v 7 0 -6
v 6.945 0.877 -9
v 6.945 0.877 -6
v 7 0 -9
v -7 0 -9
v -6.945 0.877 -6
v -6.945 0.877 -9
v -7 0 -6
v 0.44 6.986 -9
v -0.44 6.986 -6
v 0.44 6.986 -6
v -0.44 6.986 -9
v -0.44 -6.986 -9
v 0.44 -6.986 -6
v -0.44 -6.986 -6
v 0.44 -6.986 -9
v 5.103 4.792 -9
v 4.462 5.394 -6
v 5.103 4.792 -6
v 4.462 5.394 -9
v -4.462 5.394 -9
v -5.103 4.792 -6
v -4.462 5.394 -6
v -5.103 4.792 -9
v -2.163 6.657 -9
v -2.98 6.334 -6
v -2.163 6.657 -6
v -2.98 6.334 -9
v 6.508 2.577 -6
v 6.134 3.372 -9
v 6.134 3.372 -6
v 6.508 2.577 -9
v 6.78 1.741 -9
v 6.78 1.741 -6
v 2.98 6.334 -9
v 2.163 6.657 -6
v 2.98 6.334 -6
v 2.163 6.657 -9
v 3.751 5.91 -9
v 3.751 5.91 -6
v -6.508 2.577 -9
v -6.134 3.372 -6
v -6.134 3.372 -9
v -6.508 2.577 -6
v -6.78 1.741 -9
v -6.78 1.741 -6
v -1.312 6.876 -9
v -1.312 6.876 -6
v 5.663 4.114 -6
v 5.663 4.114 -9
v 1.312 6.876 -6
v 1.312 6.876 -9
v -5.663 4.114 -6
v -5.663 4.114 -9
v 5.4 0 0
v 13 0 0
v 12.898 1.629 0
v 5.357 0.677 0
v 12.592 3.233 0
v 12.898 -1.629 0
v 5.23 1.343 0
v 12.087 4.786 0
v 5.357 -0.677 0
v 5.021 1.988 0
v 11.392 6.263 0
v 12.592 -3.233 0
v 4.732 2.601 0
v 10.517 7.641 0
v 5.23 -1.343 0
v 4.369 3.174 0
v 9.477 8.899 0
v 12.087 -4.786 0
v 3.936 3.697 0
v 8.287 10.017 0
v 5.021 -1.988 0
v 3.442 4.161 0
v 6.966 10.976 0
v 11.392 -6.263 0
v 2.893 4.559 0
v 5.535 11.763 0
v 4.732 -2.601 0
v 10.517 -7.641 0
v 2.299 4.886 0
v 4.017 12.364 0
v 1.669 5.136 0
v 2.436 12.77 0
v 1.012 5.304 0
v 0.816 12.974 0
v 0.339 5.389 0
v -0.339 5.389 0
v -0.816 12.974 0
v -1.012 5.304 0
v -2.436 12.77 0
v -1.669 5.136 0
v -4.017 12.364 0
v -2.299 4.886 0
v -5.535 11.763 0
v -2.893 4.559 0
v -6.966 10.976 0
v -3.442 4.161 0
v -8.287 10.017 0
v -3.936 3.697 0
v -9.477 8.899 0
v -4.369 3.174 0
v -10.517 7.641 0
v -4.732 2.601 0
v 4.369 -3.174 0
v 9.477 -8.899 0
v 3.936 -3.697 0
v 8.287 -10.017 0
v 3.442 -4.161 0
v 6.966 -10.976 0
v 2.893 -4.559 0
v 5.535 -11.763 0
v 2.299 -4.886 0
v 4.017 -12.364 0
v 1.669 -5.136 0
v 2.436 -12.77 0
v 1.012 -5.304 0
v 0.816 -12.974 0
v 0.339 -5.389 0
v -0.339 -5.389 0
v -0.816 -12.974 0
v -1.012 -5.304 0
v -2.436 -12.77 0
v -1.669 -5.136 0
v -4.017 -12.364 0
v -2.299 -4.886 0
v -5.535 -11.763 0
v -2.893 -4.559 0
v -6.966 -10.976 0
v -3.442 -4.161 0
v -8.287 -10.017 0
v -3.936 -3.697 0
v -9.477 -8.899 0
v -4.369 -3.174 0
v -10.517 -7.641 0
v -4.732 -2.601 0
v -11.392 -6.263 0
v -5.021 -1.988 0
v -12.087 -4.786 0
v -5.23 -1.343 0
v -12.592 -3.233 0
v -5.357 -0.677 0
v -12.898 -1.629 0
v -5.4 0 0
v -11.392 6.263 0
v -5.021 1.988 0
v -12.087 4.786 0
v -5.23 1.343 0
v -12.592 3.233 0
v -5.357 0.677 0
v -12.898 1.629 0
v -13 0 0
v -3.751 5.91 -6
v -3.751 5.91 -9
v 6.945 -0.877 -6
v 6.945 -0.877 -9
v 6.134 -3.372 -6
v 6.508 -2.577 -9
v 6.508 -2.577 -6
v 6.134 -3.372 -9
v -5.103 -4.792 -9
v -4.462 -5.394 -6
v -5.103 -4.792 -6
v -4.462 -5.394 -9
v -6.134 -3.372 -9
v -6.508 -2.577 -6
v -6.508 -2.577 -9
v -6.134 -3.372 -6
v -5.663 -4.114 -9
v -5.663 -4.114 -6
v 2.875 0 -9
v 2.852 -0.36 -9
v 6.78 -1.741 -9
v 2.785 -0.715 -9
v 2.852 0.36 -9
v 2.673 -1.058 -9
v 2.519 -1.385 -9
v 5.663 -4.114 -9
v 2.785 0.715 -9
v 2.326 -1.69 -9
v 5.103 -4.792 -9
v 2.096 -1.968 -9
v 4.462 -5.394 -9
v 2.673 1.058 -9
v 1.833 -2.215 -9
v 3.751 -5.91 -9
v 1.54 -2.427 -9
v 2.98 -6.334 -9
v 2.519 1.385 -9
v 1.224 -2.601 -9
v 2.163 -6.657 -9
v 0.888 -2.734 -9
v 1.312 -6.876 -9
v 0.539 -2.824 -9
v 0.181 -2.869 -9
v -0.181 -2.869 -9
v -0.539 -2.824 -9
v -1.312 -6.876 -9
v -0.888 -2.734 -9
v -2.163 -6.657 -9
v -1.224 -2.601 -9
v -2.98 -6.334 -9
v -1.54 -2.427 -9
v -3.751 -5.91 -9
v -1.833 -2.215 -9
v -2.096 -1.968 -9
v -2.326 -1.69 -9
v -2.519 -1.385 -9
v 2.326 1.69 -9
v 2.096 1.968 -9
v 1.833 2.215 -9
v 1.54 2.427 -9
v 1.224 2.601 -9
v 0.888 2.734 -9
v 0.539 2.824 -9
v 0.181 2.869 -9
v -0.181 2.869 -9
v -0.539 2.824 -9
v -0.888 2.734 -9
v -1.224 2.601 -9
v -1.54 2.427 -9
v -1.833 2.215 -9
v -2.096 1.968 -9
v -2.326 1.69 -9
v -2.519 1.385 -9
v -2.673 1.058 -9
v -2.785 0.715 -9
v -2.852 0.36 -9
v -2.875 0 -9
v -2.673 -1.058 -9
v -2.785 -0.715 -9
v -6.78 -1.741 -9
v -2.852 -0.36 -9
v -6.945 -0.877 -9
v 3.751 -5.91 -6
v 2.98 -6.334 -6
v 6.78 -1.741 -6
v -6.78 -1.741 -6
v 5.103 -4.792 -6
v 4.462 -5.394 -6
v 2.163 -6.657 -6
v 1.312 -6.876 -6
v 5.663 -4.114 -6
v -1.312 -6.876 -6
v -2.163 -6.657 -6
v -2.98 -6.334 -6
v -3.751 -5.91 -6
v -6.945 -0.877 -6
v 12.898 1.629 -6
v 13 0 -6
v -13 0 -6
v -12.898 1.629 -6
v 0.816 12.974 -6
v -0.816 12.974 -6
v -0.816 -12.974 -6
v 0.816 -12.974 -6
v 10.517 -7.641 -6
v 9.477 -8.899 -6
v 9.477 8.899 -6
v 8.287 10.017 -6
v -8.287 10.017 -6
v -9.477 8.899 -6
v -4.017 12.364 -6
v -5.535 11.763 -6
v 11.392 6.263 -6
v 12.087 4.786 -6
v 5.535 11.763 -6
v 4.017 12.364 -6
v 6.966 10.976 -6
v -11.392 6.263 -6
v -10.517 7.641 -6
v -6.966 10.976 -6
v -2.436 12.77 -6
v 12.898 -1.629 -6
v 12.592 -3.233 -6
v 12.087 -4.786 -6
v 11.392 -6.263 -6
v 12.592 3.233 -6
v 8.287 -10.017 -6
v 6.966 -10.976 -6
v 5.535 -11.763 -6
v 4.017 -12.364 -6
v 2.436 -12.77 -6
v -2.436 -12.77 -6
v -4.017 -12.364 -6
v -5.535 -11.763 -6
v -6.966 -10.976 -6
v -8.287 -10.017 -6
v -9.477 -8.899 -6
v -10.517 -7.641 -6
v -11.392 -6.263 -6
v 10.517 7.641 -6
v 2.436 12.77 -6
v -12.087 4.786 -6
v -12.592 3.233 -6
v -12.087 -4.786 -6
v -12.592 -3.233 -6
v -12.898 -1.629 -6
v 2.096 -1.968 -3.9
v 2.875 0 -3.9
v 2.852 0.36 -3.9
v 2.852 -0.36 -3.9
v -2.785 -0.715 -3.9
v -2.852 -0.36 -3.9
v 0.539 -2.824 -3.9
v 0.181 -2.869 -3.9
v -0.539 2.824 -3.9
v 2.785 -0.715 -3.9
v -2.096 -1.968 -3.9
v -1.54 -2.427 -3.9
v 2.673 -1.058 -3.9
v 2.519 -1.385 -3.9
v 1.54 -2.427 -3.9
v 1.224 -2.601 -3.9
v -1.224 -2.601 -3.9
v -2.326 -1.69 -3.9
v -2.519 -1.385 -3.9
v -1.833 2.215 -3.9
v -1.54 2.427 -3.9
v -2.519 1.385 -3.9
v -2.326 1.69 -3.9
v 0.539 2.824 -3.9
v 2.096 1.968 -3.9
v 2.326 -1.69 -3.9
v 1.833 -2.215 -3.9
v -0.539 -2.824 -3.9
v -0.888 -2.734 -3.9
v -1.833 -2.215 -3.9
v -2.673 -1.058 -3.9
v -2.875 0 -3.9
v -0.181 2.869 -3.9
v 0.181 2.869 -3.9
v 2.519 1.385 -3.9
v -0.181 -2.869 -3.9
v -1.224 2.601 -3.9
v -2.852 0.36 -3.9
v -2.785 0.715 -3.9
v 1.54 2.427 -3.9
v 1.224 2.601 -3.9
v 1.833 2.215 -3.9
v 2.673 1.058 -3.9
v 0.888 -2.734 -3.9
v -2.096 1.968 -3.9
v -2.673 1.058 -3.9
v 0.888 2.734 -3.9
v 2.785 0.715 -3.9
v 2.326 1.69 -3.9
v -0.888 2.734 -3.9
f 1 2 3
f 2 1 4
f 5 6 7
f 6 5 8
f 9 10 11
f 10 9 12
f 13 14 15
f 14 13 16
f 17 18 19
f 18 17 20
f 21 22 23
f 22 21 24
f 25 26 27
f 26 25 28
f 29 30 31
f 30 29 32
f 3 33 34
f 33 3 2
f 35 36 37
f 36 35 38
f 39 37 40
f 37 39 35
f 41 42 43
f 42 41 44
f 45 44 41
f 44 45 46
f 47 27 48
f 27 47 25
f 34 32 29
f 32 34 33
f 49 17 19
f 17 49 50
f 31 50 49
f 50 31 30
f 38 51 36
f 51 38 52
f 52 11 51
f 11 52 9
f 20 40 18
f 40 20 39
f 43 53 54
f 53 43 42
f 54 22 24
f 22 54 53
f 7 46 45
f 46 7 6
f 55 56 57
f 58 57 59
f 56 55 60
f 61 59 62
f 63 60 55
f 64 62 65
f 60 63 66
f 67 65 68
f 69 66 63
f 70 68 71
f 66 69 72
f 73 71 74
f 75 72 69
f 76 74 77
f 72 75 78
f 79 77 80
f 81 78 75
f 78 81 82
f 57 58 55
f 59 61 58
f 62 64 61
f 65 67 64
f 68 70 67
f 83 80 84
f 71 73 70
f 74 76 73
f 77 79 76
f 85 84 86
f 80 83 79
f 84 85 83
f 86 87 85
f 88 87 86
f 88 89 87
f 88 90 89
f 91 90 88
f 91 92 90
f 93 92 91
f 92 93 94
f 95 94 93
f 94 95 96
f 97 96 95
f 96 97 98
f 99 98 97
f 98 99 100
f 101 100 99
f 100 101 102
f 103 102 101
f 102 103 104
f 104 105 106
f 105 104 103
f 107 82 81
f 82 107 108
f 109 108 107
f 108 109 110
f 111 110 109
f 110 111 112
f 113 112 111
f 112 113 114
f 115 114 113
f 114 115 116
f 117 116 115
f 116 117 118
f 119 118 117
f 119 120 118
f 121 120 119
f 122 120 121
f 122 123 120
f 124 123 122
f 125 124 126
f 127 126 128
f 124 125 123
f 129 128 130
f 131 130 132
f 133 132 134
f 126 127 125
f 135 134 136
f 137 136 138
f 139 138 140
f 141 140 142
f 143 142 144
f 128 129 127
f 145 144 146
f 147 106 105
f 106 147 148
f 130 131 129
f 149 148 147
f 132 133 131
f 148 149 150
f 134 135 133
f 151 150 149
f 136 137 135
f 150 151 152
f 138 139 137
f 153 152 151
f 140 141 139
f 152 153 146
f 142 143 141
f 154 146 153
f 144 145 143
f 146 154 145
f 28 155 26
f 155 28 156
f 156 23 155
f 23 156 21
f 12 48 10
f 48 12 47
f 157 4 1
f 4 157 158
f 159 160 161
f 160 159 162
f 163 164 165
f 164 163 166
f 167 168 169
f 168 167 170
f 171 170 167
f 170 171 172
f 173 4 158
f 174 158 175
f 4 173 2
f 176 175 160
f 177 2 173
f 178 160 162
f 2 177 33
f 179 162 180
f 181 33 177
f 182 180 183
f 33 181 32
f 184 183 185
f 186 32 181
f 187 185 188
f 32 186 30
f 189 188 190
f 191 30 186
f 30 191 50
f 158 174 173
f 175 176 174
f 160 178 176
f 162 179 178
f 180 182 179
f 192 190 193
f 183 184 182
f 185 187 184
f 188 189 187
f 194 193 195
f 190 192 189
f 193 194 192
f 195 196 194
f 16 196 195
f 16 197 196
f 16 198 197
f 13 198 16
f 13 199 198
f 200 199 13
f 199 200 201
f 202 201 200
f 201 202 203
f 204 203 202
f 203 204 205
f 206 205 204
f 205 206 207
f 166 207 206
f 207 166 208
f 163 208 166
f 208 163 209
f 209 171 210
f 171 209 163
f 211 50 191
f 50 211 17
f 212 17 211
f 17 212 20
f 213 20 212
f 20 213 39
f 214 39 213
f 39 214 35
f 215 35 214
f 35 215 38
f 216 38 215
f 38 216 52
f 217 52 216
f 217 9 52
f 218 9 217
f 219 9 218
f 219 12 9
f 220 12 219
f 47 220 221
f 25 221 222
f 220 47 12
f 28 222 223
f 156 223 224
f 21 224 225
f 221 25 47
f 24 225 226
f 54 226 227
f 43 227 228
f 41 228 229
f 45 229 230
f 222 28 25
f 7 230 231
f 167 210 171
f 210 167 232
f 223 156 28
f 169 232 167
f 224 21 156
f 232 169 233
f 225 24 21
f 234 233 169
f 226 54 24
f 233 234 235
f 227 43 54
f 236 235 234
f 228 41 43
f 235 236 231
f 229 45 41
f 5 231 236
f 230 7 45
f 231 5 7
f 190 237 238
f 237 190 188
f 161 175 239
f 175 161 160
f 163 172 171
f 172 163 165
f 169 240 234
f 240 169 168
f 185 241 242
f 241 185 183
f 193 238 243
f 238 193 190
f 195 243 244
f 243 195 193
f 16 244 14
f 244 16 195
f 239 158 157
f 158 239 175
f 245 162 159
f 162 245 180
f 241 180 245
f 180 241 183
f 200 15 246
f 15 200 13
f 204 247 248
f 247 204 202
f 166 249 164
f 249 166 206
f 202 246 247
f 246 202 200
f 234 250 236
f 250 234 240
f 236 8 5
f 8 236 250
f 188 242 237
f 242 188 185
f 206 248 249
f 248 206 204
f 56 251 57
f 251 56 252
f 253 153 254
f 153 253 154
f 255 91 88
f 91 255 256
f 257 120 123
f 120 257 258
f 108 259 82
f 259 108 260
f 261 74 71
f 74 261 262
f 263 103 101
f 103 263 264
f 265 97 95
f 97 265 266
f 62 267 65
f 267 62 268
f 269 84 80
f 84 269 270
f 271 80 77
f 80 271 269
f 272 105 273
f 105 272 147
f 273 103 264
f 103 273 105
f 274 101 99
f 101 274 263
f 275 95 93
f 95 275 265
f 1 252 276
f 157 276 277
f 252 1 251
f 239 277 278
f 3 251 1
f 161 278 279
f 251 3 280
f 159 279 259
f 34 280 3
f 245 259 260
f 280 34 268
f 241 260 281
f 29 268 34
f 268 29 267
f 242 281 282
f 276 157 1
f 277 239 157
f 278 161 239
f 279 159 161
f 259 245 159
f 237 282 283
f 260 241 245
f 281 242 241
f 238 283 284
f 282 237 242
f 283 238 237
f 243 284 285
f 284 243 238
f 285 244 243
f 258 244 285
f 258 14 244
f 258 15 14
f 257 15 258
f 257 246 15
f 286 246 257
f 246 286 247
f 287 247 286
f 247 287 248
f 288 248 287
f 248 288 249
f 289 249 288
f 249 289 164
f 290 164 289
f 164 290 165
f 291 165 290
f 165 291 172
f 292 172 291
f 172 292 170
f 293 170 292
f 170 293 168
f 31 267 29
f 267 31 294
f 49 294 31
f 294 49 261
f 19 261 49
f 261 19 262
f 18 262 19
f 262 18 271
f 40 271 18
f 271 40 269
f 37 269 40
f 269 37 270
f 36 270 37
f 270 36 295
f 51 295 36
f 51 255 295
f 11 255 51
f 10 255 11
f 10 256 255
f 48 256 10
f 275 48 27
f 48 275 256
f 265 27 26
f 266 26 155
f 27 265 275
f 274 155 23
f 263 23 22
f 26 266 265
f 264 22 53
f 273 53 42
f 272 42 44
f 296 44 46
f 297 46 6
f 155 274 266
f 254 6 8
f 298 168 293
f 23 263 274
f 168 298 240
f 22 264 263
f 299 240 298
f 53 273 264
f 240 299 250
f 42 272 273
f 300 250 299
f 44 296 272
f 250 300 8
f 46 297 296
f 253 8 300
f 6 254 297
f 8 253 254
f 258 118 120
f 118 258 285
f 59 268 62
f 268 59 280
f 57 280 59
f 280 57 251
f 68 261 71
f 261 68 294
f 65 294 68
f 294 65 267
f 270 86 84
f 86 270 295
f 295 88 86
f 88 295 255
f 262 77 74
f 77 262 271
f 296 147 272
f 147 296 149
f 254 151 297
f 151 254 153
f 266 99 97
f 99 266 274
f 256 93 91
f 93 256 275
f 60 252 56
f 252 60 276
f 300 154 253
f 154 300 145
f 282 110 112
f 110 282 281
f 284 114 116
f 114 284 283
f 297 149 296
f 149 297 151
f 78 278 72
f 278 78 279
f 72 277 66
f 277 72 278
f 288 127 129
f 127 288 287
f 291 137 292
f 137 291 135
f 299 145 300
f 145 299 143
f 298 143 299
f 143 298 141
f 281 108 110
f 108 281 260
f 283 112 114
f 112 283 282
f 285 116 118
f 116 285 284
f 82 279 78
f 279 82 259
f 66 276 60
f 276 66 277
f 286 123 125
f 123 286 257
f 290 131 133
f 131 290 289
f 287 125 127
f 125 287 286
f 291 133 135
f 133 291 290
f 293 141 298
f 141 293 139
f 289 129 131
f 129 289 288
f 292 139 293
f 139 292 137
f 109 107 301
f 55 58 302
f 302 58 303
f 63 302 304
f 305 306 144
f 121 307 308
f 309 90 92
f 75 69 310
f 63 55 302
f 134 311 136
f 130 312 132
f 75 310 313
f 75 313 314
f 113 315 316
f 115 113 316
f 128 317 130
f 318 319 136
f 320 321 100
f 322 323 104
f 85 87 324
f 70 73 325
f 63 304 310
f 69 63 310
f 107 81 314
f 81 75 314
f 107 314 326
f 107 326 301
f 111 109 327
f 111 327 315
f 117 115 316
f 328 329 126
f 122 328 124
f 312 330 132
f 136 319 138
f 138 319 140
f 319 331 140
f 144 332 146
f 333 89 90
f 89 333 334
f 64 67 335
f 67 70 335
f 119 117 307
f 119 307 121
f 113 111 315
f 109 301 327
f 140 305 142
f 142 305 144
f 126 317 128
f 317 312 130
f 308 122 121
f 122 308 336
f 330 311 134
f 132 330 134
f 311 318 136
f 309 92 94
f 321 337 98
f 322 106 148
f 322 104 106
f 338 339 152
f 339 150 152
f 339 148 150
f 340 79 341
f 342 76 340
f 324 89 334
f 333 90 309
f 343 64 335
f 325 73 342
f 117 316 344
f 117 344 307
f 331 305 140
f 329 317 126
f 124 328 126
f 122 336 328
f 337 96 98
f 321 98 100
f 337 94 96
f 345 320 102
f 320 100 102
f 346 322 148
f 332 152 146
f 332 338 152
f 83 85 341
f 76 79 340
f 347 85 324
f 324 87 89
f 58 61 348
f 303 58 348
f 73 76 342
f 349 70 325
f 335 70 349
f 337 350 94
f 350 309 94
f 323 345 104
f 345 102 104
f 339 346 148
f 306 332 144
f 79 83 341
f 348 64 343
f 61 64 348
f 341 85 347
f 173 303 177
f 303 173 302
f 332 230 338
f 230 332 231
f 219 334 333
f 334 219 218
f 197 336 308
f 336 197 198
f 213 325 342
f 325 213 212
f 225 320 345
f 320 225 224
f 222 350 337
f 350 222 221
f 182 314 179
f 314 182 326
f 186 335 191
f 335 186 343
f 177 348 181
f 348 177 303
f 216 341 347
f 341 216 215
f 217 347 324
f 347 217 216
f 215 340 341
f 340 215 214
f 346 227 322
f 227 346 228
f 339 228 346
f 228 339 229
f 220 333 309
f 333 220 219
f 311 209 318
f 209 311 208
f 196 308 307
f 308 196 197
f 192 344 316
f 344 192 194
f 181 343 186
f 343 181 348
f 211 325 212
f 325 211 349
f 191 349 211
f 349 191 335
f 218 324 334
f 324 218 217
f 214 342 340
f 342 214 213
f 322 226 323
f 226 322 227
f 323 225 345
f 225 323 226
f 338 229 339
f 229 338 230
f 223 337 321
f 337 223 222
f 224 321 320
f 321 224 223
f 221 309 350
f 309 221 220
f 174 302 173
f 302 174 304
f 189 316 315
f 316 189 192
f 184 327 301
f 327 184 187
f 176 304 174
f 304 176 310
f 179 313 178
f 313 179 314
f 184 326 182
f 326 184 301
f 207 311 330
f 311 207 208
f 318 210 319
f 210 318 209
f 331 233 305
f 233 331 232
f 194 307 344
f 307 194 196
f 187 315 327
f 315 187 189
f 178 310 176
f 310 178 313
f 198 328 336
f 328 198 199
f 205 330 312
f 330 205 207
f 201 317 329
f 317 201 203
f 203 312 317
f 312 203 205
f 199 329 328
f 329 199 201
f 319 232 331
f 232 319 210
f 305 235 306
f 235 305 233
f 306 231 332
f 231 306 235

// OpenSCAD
$fn = 50;


difference() {
	union() {
		translate(v = [0, 0, -9.0000000000]) {
			cylinder(h = 9, r = 7.0000000000);
		}
		translate(v = [0, 0, -6.0000000000]) {
			cylinder(h = 6, r = 13.0000000000);
		}
	}
	union() {
		translate(v = [0, 0, 0]) {
			rotate(a = [0, 0, 0]) {
				difference() {
					union() {
						#translate(v = [0, 0, -9.0000000000]) {
							cylinder(h = 9, r = 2.6000000000);
						}
						#translate(v = [0, 0, -3.9000000000]) {
							cylinder(h = 3.9000000000, r = 7.0000000000, r1 = 2.8750000000, r2 = 5.4000000000);
						}
						#translate(v = [0, 0, -9.0000000000]) {
							cylinder(h = 9, r = 2.8750000000);
						}
						#translate(v = [0, 0, -9.0000000000]) {
							cylinder(h = 9, r = 2.6000000000);
						}
					}
					union();
				}
			}
		}
	}
}
